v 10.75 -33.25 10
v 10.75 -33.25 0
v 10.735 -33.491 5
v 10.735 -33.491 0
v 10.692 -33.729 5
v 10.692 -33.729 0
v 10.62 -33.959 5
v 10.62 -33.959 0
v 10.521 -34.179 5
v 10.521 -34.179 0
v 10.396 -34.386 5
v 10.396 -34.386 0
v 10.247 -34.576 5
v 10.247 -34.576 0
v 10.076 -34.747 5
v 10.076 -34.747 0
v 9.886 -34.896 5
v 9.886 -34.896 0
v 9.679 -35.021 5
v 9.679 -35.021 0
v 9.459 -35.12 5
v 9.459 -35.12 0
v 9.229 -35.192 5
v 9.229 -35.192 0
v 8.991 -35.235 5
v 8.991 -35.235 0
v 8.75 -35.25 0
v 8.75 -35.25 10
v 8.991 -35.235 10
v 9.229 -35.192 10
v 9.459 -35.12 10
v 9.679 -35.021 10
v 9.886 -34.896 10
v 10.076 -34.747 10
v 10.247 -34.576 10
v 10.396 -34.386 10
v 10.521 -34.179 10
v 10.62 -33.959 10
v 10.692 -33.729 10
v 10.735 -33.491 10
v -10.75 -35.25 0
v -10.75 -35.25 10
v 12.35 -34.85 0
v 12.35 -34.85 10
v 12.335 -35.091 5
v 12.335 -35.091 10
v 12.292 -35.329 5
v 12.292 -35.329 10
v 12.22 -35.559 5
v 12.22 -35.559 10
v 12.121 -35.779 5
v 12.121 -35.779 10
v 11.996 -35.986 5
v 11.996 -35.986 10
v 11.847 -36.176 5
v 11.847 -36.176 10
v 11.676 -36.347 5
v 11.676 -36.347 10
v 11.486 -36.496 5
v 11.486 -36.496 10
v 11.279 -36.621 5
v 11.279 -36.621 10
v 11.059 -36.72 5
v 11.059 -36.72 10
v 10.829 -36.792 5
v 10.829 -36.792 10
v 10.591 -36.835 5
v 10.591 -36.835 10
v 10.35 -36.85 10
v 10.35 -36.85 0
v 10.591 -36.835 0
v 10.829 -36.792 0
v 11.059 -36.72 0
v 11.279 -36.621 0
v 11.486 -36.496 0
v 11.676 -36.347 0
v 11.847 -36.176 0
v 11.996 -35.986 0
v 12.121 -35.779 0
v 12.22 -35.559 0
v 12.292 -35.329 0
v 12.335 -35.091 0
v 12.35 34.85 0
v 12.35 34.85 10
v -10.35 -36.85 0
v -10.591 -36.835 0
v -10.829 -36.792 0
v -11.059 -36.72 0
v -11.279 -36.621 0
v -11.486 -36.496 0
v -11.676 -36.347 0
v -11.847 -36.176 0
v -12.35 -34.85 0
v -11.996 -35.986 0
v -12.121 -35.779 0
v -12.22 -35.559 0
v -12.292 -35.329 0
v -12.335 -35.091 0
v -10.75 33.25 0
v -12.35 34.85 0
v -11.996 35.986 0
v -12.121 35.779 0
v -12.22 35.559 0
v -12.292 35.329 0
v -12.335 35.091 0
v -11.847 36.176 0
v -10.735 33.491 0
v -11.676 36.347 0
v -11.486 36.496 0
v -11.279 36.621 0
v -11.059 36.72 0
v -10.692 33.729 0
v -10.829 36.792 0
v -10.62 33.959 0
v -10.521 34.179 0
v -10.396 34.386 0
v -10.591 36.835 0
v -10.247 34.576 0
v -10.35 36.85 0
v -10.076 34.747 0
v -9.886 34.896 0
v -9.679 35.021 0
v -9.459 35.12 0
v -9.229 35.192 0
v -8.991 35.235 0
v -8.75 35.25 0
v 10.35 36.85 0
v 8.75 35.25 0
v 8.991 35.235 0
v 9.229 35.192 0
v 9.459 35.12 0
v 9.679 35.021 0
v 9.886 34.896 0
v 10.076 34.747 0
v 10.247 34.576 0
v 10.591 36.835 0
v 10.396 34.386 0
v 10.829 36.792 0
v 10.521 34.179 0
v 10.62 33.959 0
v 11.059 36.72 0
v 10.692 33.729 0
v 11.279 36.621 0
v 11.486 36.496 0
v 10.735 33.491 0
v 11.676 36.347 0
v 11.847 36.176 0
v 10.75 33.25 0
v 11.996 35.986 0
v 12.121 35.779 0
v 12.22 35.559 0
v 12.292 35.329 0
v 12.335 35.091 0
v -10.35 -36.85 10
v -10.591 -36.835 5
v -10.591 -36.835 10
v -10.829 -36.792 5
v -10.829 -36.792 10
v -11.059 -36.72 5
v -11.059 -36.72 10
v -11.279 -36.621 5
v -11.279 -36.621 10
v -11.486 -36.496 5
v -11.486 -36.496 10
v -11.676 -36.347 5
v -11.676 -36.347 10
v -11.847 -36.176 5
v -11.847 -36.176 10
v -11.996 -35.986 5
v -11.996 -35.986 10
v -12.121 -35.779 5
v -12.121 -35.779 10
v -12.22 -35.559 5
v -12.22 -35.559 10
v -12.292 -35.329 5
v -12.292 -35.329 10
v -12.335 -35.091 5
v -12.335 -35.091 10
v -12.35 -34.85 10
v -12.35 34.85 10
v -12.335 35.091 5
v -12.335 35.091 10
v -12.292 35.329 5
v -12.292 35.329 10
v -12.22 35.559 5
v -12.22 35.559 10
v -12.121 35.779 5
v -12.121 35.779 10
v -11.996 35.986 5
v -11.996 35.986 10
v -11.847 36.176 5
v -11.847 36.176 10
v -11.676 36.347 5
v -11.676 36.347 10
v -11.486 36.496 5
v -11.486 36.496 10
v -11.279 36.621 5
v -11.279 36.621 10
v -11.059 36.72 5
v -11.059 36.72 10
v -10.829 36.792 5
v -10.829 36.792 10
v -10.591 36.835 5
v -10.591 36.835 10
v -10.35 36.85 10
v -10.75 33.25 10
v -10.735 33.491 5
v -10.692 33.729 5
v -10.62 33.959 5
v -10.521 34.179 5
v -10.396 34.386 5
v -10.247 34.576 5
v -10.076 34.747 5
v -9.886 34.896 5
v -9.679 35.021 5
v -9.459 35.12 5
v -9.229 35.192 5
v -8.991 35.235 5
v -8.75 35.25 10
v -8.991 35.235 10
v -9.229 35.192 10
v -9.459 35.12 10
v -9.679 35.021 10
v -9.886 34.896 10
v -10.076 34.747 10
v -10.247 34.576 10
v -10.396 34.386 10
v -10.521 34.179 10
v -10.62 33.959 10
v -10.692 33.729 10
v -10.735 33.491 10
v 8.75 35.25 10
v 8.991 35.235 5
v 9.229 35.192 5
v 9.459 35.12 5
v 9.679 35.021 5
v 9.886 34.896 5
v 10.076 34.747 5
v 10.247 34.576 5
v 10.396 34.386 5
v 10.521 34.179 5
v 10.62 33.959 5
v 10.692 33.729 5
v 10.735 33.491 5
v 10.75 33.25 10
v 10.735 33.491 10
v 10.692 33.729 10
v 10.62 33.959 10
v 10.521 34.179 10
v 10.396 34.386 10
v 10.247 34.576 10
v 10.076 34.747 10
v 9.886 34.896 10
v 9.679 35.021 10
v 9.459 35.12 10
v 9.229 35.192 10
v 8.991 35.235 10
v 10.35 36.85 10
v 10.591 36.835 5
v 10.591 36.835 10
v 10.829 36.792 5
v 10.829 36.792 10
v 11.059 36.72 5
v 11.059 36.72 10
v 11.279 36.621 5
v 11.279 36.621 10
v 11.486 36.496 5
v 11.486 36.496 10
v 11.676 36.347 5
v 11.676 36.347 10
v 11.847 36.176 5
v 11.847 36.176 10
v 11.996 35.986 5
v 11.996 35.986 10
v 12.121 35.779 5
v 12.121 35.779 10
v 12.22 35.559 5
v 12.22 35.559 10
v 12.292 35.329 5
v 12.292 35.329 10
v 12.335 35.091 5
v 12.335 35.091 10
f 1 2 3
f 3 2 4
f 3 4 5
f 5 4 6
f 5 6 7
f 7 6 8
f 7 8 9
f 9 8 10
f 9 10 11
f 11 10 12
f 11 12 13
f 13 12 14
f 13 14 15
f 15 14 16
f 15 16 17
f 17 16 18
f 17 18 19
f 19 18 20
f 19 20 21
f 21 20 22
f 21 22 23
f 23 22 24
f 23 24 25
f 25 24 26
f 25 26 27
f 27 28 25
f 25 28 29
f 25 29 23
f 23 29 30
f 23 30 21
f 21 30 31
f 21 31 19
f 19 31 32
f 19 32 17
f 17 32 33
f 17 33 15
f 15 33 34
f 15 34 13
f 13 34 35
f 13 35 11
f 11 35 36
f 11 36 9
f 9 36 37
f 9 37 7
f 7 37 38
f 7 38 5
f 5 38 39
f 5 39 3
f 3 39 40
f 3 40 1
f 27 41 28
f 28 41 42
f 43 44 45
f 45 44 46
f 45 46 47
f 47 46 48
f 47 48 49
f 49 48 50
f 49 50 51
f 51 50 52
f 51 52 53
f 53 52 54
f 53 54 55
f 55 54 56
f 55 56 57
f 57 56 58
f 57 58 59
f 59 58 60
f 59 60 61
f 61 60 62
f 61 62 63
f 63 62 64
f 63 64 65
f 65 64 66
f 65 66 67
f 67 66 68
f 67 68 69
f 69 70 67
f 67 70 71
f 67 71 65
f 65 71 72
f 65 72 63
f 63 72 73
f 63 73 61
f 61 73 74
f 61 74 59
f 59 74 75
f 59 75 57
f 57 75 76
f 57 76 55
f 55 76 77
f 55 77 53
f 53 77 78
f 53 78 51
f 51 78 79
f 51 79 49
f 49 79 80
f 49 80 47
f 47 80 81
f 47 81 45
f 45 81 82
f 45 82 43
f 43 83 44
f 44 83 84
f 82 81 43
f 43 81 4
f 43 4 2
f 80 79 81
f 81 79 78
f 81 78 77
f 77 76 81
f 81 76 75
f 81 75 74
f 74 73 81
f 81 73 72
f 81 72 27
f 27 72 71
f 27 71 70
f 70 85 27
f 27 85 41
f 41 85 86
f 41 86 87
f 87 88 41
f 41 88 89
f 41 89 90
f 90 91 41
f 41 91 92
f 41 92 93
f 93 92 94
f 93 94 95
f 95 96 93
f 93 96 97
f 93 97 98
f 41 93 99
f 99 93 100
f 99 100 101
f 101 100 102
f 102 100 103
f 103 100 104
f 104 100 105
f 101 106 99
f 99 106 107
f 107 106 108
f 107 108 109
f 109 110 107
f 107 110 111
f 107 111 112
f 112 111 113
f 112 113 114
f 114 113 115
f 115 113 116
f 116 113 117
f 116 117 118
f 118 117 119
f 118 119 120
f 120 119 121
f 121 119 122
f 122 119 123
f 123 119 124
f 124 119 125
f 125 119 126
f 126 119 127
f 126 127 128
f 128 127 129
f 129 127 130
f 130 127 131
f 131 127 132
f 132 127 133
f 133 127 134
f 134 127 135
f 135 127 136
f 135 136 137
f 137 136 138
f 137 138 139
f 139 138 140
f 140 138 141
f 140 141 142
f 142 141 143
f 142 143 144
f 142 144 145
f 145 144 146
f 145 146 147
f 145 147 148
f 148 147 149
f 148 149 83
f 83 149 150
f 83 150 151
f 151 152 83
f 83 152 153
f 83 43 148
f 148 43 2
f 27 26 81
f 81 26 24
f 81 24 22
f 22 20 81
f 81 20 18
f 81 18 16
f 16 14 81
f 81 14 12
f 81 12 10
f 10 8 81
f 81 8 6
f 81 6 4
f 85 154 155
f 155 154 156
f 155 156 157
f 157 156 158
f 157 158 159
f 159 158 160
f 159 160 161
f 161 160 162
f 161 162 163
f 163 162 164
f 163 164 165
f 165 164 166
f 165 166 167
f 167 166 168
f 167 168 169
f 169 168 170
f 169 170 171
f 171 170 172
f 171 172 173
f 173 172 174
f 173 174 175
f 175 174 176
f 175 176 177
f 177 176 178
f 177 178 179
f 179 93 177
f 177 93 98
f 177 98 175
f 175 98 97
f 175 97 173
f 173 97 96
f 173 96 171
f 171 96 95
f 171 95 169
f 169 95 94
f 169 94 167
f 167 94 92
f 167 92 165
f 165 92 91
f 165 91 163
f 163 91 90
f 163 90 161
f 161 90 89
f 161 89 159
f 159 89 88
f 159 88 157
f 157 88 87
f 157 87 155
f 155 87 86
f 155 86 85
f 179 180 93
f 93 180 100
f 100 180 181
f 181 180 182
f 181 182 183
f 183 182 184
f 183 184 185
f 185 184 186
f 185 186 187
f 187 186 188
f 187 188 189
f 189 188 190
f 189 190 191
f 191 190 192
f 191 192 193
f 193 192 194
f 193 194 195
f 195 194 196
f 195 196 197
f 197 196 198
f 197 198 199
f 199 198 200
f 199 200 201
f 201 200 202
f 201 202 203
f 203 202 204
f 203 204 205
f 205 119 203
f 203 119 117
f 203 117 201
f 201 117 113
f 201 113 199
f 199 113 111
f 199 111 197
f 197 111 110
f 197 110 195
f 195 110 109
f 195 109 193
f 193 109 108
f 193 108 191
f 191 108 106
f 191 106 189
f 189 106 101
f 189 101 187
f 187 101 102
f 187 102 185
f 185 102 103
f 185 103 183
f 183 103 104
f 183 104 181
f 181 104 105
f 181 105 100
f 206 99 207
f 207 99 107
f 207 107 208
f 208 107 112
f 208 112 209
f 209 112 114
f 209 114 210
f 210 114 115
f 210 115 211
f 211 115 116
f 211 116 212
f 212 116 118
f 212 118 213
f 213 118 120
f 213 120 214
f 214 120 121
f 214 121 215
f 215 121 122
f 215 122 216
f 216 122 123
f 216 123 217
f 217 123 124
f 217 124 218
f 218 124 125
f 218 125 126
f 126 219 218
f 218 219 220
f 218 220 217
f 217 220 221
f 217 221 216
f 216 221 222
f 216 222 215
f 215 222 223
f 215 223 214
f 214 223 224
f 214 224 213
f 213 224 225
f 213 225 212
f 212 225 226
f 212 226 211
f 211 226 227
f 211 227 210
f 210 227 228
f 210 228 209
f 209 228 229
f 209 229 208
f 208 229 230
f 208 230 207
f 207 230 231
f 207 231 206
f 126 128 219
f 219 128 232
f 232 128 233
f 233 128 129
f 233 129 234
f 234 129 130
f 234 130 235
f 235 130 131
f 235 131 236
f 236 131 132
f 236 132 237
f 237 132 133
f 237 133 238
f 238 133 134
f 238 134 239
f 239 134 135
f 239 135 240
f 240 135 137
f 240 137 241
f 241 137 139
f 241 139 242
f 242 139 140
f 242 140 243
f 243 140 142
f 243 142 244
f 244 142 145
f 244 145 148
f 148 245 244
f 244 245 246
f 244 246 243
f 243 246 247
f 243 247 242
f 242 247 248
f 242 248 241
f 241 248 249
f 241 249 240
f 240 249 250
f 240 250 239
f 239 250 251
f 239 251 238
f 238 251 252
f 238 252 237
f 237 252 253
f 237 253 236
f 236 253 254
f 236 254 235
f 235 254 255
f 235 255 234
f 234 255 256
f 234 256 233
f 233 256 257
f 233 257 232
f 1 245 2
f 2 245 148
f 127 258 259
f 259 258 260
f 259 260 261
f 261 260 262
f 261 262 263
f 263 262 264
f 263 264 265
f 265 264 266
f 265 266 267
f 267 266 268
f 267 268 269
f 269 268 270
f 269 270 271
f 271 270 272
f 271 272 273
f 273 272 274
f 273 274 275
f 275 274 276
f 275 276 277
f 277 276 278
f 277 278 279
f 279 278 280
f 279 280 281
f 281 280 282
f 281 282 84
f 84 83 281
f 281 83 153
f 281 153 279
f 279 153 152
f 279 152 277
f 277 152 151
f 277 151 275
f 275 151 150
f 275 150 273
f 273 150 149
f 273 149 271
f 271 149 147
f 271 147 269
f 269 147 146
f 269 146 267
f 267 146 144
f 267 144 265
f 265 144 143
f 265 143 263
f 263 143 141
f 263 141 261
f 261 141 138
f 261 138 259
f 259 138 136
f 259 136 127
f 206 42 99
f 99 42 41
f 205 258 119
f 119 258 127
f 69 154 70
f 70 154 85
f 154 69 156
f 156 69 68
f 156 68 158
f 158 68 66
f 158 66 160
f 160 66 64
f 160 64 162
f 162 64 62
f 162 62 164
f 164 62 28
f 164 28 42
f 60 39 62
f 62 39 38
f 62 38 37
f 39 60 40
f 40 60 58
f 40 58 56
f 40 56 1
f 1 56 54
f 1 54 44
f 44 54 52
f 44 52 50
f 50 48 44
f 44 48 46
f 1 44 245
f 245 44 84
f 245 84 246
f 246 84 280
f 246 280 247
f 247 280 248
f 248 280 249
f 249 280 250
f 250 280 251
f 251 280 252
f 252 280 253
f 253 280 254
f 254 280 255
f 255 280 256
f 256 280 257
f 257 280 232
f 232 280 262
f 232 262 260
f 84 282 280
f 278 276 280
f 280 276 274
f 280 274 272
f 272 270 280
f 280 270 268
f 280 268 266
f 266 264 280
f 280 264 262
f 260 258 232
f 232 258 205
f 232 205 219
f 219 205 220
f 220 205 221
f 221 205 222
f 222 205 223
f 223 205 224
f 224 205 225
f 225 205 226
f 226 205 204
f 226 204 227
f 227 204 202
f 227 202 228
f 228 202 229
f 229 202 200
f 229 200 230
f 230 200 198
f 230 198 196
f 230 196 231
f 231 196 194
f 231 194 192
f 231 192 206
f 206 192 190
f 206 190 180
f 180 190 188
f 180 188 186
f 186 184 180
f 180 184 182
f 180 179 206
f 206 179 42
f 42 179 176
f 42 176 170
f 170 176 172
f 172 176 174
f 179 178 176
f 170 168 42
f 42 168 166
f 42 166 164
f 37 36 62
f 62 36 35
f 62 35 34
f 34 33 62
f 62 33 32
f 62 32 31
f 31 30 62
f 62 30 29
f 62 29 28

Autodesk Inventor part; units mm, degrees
ref_plane "YZ Plane" through (0, 0, 0) normal (1, 0, 0) x (0, 1, 0)
ref_plane "XZ Plane" through (0, 0, 0) normal (0, 1, 0) x (-1, 0, 0)
ref_plane "XY Plane" through (0, 0, 0) normal (0, 0, 1) x (1, 0, 0)
sketch "Sketch1" plane through (0, 0, 0) normal (0, 0, 1) x (1, 0, 0)
  line L0 (-10.75, 35.25) -> (10.75, 35.25)
  line L1 (10.75, 35.25) -> (10.75, -35.25)
  line L2 (10.75, -35.25) -> (-10.75, -35.25)
  line L3 (-10.75, -35.25) -> (-10.75, 35.25)
  line L4 (12.35, 36.85) -> (-12.35, 36.85)
  line L5 (-12.35, 36.85) -> (-12.35, -36.85)
  line L6 (-12.35, -36.85) -> (12.35, -36.85)
  line L7 (12.35, -36.85) -> (12.35, 36.85)
  point P0 (0, 0)
  point P1 (10.75, 0)
  point P2 (0, 35.25)
  dimension "d0" = 21.5
  dimension "d1" = 70.5
  dimension "d2" = 1.6
extrude "Extrusion1" add sketch "Sketch1" along normal blind 10
fillet "Fillet1" radius 2 7 edges at (12.35, 36.85, 5) (10.75, 35.25, 5) (-10.75, 35.25, 5) (-12.35, 36.85, 5) (-12.35, -36.85, 5) (12.35, -36.85, 5) (10.75, -35.25, 5)
properties part number "SampleHolderBand" material "ABS Plastic"
